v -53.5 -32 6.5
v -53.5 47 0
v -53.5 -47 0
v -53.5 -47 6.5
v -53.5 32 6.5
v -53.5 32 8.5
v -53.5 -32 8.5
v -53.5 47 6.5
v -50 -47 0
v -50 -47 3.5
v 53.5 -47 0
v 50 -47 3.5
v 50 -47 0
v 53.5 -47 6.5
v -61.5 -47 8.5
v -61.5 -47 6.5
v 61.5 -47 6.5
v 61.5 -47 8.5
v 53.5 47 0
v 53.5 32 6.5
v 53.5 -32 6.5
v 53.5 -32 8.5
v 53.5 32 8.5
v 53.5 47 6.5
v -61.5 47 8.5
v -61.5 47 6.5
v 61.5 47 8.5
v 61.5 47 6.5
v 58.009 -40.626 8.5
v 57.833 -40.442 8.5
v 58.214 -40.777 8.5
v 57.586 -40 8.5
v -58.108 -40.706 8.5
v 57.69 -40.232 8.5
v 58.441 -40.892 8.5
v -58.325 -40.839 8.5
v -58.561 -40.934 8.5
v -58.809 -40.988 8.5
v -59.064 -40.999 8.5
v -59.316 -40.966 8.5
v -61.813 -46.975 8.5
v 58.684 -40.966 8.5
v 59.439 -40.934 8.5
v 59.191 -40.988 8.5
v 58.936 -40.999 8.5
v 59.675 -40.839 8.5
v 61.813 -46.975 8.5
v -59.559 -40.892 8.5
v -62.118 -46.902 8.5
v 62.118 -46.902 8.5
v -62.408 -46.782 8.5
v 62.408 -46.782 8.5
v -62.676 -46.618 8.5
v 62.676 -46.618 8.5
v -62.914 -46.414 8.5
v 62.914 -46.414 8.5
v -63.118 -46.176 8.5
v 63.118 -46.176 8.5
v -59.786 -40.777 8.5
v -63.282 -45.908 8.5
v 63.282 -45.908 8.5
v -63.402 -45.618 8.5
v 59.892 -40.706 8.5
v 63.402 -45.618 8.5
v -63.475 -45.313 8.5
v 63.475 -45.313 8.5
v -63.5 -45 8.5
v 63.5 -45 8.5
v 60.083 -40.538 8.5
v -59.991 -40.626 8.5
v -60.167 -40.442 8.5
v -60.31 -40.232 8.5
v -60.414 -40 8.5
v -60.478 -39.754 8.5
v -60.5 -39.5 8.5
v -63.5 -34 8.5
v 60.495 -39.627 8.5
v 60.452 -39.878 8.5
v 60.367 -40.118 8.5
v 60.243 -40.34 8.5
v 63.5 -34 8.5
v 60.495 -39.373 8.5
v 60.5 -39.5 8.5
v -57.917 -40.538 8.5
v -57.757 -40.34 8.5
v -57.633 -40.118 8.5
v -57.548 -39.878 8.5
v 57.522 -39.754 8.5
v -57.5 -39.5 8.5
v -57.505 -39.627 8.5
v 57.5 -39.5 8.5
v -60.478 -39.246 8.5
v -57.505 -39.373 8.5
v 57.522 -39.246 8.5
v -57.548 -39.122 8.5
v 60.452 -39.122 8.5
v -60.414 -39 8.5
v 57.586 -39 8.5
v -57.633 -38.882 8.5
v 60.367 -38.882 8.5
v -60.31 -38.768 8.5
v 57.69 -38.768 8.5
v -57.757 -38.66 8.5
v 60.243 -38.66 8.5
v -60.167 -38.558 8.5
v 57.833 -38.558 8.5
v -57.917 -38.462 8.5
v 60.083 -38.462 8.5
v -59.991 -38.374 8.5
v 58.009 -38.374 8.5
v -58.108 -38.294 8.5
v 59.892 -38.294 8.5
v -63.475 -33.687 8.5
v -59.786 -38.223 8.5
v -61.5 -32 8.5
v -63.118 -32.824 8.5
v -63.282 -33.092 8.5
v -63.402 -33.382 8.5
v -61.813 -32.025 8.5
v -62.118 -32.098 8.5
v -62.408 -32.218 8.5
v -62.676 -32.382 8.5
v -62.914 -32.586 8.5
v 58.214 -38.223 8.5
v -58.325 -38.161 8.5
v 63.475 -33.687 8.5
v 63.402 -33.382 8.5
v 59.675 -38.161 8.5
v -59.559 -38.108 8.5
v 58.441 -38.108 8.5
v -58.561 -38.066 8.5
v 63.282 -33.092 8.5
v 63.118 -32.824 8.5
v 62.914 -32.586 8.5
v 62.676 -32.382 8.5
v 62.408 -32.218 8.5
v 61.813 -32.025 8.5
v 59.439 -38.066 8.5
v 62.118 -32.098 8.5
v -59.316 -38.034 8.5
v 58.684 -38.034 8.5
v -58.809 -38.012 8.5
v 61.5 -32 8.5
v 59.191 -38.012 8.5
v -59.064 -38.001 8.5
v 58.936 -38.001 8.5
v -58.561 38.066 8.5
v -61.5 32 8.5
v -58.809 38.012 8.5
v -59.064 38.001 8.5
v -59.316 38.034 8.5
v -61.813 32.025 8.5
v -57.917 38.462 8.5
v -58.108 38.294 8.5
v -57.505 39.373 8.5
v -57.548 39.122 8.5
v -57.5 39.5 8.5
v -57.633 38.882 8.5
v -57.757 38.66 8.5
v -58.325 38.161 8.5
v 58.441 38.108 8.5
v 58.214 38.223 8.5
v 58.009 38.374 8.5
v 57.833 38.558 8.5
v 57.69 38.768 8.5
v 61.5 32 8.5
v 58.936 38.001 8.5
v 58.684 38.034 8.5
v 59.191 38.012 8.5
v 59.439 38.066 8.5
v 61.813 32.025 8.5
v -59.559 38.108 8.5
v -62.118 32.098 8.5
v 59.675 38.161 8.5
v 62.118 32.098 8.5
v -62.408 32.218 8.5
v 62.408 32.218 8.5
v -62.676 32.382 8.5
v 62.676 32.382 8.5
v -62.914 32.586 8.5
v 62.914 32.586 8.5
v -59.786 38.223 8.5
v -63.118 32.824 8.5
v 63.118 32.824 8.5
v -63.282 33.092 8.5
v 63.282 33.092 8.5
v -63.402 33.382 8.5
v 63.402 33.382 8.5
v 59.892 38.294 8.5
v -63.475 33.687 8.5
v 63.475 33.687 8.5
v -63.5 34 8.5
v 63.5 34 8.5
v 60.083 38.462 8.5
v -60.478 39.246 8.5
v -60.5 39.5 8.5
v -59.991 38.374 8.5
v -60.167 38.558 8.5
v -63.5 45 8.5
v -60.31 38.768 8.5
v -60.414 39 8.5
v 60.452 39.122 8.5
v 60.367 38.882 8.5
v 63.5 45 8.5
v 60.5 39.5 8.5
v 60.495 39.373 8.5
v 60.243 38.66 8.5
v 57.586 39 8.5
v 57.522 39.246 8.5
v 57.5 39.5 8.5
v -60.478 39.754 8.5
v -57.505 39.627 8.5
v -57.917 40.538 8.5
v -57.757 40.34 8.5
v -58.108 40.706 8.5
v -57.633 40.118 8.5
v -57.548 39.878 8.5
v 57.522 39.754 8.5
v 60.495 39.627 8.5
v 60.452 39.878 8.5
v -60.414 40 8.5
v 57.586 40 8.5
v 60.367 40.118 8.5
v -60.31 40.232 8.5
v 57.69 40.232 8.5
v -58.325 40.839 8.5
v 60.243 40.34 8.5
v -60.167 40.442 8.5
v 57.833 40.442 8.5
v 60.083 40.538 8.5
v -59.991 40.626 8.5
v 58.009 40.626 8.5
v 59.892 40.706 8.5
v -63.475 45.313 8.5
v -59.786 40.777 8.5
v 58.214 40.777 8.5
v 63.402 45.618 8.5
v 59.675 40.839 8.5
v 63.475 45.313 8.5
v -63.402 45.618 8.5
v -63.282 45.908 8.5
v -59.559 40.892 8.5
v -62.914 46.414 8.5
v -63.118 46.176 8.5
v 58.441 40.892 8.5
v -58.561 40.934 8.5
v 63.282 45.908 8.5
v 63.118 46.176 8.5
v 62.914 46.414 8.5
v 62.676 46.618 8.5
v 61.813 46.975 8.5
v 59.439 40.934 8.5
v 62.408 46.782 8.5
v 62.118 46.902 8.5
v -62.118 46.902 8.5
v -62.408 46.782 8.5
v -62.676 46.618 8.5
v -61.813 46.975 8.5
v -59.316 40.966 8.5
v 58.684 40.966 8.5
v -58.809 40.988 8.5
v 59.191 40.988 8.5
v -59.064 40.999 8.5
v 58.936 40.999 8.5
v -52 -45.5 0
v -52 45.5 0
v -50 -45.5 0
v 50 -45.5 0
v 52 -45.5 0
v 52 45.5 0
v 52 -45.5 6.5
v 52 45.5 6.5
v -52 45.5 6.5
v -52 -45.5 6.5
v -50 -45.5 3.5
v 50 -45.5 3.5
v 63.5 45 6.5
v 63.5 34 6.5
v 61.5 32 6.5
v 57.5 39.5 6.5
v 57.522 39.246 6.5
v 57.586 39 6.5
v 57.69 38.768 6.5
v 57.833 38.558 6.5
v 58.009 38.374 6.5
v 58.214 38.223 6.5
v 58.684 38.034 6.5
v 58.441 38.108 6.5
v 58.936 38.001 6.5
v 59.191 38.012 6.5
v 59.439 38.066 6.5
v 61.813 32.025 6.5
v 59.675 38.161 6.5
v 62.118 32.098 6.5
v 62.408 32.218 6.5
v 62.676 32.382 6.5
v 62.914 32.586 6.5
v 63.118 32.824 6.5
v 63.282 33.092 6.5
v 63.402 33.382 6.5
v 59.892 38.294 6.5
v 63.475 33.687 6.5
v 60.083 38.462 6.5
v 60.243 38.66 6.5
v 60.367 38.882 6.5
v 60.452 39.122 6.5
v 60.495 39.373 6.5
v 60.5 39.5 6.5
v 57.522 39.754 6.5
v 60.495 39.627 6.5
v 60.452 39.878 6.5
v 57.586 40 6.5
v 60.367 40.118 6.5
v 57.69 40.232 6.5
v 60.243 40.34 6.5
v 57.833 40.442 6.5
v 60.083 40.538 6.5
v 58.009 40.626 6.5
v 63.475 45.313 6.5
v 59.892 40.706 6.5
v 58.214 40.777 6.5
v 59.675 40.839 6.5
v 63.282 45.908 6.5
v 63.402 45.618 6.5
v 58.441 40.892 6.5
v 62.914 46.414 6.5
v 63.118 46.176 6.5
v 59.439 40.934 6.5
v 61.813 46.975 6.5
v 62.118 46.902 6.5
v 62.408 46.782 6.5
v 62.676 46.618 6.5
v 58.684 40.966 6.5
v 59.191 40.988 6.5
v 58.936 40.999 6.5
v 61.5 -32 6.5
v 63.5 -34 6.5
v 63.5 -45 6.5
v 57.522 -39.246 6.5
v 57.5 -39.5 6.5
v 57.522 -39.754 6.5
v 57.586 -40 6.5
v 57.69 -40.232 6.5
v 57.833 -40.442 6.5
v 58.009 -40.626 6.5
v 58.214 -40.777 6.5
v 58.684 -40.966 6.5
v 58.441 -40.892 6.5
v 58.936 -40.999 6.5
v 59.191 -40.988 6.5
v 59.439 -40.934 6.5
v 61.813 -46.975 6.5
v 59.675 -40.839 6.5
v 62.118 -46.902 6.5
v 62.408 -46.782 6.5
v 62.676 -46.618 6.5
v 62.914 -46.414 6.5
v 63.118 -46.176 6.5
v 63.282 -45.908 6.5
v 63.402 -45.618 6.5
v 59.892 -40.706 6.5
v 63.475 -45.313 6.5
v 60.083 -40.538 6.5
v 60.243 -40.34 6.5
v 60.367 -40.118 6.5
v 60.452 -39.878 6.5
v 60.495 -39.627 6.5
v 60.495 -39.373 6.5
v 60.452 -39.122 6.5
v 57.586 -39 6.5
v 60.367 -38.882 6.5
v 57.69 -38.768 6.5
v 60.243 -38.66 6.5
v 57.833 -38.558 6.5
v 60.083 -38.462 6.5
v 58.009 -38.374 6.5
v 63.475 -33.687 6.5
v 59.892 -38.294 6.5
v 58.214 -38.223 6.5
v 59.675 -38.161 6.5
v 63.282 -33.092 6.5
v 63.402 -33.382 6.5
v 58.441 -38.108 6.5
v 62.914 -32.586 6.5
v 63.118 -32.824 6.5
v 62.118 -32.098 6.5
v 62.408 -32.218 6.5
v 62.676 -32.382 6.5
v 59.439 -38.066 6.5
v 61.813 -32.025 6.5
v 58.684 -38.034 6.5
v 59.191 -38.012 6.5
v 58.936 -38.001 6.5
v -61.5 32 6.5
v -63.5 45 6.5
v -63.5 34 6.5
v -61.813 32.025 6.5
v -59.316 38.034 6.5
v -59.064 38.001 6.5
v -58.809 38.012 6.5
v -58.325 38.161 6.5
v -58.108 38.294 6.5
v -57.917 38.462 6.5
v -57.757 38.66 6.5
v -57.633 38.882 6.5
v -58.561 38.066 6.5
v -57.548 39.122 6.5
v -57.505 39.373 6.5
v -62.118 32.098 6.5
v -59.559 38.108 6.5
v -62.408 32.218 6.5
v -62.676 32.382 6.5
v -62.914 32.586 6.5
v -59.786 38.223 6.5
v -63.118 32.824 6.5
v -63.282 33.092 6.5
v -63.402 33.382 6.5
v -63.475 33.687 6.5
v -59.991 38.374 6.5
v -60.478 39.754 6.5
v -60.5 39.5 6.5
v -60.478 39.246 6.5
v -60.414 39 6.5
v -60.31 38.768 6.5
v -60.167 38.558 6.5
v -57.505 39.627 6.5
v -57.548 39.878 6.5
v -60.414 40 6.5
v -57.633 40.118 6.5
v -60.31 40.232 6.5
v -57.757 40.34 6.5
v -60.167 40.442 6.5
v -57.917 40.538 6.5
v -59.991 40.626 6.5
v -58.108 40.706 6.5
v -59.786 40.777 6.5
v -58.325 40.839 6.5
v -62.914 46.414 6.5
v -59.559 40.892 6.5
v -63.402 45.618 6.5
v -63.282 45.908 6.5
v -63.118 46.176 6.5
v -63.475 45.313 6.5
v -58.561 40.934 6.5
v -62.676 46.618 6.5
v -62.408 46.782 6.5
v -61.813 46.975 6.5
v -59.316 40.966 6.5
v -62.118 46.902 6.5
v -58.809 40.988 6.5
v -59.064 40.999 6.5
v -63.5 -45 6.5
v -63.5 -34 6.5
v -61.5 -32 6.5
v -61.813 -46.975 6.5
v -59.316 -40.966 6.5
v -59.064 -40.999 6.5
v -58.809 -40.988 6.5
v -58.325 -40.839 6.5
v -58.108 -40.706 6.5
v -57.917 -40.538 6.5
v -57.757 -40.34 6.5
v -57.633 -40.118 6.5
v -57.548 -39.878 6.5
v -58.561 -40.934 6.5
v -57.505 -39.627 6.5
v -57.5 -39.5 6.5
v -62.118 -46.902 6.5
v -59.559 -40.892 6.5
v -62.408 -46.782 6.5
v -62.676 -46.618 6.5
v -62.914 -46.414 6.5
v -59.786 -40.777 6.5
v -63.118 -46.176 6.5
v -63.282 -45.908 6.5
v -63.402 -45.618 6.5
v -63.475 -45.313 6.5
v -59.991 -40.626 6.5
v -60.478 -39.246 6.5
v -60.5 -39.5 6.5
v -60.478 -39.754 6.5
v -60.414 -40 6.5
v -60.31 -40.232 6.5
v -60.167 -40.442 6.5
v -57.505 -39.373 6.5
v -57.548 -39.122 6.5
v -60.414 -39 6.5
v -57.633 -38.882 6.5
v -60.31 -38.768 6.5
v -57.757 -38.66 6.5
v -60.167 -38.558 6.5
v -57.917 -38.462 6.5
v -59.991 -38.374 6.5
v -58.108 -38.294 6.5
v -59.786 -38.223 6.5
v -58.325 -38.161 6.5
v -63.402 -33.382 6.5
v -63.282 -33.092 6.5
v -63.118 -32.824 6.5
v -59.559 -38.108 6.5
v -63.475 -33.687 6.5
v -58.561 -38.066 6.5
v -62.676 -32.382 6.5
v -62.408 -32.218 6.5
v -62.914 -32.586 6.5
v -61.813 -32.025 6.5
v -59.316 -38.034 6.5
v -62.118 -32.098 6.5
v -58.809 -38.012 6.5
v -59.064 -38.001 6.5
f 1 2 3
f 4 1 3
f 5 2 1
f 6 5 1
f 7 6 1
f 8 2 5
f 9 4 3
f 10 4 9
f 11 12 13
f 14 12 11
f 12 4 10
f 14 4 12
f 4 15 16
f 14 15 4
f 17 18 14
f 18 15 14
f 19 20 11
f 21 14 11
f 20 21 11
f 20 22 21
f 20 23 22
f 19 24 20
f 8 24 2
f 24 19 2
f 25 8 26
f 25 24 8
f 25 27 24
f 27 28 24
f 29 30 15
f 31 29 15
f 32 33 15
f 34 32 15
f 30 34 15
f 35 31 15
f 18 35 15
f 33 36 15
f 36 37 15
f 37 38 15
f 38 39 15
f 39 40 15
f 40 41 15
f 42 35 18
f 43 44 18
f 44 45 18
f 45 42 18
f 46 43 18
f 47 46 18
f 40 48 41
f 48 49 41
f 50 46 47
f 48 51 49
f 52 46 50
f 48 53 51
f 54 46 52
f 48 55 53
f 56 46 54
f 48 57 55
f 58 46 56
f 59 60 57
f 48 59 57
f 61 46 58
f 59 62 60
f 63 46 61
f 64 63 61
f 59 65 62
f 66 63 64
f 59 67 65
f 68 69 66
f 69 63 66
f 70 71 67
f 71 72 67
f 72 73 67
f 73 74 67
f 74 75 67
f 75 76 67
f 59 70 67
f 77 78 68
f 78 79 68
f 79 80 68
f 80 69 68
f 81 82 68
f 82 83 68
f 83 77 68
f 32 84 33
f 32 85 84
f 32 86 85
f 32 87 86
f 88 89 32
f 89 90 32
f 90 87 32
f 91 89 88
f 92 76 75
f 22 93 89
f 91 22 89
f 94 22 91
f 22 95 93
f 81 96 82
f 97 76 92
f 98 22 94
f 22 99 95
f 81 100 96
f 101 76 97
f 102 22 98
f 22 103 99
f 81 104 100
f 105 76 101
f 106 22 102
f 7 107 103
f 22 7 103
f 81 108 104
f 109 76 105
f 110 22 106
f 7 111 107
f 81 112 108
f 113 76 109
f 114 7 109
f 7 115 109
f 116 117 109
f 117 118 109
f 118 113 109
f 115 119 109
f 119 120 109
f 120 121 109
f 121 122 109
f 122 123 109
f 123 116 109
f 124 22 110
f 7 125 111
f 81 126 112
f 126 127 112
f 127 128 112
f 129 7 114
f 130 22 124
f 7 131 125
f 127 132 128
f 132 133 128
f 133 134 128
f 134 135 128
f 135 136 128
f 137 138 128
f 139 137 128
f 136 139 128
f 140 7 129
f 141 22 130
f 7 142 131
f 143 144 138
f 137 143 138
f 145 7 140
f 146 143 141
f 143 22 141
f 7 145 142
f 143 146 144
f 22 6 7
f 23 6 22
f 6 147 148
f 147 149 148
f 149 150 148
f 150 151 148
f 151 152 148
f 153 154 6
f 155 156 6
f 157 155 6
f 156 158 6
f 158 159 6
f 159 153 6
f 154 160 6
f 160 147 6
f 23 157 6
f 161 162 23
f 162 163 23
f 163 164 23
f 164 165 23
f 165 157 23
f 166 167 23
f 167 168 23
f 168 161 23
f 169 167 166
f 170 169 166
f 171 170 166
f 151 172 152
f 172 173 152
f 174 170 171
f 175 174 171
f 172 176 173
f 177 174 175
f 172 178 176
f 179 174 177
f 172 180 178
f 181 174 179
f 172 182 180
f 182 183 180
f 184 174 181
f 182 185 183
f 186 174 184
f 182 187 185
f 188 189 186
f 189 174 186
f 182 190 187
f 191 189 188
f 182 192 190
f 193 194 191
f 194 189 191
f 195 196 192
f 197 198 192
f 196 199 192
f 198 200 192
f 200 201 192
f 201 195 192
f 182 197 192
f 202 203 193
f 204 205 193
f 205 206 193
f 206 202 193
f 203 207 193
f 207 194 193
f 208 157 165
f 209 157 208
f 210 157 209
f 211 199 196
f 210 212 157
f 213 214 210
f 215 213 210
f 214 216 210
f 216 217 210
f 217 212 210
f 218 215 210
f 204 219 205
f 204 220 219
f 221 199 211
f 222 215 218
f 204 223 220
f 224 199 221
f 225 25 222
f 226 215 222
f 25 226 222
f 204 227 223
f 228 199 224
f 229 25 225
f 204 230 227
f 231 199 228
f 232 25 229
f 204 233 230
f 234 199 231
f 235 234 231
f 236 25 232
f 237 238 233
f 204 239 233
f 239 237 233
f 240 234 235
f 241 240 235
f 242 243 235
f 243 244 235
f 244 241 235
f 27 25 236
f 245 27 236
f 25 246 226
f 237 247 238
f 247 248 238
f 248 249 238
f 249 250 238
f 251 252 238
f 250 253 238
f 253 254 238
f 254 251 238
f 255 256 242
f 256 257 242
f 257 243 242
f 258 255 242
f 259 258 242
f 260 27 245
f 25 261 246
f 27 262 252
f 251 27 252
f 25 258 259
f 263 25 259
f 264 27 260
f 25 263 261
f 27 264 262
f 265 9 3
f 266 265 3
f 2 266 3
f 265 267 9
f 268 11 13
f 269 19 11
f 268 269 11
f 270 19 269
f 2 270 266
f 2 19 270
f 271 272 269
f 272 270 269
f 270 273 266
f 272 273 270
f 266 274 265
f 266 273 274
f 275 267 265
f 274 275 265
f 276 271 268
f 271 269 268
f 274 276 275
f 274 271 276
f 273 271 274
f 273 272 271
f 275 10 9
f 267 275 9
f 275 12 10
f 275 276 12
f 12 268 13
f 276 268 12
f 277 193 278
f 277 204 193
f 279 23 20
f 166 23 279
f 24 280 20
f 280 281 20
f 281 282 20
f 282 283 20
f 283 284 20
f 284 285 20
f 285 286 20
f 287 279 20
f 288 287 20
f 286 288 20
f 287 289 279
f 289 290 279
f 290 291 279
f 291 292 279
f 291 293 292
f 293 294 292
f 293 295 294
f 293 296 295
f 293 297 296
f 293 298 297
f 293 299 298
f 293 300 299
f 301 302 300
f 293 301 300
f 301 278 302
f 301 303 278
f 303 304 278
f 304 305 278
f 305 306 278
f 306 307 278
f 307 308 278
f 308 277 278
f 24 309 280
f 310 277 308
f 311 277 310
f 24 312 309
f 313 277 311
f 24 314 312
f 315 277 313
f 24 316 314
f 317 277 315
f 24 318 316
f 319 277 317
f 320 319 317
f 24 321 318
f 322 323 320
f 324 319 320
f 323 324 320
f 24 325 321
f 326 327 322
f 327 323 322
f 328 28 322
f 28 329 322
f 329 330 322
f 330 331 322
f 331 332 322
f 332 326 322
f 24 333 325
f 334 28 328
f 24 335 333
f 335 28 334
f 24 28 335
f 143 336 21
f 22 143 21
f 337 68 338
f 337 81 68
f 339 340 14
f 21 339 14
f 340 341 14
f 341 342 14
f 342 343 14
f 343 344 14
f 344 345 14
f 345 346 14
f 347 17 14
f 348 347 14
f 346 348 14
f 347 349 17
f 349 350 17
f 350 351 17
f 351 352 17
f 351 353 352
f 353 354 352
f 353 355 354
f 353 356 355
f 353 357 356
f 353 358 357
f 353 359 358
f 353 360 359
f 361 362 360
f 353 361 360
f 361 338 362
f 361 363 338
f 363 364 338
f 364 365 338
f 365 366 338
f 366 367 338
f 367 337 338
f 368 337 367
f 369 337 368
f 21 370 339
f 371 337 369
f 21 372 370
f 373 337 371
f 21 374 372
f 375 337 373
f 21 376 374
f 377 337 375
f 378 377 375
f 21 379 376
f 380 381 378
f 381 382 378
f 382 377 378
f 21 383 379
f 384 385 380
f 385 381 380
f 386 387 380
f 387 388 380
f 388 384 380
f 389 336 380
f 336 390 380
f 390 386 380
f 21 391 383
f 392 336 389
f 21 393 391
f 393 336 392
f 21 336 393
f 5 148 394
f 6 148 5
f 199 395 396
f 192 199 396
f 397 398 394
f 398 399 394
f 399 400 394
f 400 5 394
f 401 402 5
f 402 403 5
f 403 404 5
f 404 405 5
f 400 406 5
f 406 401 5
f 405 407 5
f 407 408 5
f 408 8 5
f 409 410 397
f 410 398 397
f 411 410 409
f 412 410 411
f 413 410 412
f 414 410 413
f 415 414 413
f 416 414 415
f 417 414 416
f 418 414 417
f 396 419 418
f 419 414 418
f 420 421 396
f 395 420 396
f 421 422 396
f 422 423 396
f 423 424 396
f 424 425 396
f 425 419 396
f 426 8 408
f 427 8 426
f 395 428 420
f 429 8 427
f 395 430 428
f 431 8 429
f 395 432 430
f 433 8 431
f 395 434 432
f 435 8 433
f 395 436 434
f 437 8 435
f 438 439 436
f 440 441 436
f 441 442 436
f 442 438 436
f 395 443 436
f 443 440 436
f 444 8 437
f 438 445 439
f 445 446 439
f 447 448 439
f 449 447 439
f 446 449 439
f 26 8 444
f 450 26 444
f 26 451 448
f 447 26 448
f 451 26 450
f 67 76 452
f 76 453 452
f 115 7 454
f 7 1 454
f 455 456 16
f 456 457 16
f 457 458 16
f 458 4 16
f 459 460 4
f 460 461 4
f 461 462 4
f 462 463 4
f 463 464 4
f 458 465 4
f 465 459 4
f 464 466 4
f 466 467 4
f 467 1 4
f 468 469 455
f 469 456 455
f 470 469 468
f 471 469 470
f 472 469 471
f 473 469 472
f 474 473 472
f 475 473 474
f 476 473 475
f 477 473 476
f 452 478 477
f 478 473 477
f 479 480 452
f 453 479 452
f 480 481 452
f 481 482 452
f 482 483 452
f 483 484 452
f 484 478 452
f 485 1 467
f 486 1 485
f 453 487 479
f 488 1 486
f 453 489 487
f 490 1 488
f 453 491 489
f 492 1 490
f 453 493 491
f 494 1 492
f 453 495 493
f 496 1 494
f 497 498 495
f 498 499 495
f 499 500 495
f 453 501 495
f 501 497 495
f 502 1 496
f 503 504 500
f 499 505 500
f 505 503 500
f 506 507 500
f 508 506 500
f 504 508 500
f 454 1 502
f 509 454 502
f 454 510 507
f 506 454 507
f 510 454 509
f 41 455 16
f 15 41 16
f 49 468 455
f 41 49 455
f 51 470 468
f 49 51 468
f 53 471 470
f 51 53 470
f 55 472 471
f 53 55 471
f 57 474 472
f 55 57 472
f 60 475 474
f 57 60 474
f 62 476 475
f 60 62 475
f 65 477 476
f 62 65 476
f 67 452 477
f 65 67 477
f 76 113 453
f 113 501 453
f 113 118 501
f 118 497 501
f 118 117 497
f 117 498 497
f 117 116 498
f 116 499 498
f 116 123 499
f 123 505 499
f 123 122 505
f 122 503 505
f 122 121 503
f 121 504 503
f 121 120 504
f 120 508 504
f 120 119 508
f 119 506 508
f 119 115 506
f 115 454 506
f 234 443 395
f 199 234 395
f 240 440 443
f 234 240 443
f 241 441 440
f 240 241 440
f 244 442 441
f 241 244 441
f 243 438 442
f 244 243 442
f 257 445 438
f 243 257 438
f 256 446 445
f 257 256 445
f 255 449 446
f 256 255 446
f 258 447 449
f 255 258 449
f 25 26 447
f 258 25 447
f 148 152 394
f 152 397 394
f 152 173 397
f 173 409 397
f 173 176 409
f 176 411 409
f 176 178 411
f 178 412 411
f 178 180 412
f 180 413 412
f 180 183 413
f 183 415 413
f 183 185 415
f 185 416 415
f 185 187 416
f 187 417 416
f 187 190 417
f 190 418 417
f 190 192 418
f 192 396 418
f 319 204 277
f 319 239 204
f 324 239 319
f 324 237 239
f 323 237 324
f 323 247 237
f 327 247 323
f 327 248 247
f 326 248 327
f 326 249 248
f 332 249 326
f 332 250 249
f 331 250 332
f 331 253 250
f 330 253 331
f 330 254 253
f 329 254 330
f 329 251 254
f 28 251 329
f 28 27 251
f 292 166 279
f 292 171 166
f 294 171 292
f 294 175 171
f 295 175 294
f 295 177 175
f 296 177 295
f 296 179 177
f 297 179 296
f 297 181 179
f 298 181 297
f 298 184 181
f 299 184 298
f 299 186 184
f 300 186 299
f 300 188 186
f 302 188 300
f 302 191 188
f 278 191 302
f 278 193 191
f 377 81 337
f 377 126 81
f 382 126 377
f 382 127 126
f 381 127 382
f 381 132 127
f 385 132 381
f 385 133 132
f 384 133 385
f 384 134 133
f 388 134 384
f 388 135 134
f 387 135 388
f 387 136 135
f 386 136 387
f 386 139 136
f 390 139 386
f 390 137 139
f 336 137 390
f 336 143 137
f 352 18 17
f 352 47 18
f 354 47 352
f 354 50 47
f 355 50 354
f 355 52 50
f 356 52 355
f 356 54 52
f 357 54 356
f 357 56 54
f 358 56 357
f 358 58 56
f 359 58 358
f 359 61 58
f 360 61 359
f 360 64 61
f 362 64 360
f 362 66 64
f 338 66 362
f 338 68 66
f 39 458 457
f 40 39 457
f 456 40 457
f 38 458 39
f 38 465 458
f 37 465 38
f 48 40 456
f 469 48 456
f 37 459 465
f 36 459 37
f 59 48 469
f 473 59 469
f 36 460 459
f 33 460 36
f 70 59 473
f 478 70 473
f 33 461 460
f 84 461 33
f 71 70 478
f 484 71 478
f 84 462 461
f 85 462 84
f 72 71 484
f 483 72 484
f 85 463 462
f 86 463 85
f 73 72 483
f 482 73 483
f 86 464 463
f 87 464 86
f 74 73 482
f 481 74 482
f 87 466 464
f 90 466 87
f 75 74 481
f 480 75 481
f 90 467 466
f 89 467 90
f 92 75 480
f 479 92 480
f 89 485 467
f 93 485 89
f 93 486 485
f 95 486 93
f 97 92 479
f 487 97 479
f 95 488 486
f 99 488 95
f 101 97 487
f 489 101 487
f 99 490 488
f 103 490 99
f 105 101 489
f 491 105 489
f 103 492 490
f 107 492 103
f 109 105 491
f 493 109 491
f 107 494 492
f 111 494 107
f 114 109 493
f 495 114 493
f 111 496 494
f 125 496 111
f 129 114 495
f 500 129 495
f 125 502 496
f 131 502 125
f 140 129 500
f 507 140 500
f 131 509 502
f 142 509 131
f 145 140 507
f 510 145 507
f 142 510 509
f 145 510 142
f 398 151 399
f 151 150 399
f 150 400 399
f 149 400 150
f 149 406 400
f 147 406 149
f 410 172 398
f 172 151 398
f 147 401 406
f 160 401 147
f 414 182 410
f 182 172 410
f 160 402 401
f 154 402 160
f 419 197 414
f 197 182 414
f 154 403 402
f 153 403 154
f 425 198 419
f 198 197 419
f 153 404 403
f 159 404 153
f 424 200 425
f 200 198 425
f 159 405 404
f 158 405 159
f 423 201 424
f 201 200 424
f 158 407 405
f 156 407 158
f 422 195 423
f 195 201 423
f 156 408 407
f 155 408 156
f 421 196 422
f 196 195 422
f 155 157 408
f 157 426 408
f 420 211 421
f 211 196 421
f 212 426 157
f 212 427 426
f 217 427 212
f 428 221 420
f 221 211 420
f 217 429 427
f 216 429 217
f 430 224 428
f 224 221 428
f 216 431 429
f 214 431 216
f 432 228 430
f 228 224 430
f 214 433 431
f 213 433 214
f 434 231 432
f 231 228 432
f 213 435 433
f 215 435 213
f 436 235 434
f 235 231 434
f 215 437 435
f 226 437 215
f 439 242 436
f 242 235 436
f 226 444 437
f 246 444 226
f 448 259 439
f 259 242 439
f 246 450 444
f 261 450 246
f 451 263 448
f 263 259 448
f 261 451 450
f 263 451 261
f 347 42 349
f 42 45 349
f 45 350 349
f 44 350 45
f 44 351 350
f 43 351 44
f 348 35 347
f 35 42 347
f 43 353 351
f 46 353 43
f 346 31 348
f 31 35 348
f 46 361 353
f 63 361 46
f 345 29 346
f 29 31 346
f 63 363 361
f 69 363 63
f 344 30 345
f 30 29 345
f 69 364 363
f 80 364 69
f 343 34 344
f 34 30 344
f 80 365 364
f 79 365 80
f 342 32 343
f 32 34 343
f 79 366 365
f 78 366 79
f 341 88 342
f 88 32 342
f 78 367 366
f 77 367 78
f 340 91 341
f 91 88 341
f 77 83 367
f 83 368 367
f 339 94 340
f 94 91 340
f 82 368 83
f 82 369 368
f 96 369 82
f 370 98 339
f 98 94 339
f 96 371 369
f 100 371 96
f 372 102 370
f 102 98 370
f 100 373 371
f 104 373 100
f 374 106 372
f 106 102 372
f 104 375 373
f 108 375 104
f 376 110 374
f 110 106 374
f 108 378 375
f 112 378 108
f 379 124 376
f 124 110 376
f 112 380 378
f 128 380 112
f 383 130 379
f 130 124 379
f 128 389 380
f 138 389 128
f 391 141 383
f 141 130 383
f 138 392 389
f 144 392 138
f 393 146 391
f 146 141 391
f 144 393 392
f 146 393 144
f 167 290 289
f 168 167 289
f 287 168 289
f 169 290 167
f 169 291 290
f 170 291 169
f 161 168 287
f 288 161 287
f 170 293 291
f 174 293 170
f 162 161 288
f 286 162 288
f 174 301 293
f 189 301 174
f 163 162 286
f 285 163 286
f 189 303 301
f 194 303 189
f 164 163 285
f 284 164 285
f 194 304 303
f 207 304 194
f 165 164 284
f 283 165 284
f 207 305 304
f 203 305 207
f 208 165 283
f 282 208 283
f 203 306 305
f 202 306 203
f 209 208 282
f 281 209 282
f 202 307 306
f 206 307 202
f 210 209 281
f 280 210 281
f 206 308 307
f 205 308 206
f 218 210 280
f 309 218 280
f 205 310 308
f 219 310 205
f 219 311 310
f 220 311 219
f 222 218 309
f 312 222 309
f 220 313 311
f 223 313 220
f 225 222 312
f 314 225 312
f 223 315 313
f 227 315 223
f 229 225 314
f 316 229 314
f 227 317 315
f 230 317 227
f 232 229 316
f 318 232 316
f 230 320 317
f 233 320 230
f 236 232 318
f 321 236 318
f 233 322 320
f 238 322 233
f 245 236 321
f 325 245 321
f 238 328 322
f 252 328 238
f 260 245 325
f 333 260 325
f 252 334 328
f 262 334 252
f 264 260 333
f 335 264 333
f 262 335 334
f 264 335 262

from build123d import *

# Parameters (mm, degrees)
SKETCH_1_W          = 107
SKETCH_1_H          = 94
EXTRUDE_1_DEPTH     = 8.5
SKETCH_2_W          = 104
SKETCH_2_H          = 91
CUT_EXTRUDE_1_DEPTH = 6.5
SKETCH_3_W          = 100
SKETCH_3_H          = 5.5
CUT_EXTRUDE_2_DEPTH = 6
SKETCH_4_W          = 10
SKETCH_4_H          = 15
EXTRUDE_2_DEPTH     = 2
FILLET_1_R          = 2
SKETCH_5_R          = 1.5
CUT_EXTRUDE_3_DEPTH = 3


with BuildPart() as part:
    # 草图1 → 凸台-拉伸1 (new body)
    with BuildSketch(Plane.XY):
        Rectangle(SKETCH_1_W, SKETCH_1_H)
    extrude(amount=EXTRUDE_1_DEPTH)

    # 草图2 → 切除-拉伸1 (cut)
    with BuildSketch(Plane(origin=(0, 0, 0), x_dir=(-1, 0, 0), z_dir=(0, 0, -1))):
        Rectangle(SKETCH_2_W, SKETCH_2_H)
    extrude(amount=-CUT_EXTRUDE_1_DEPTH, mode=Mode.SUBTRACT)

    # 草图3 → 切除-拉伸2 (cut)
    with BuildSketch(Plane.XZ.offset(47)):
        with Locations((0, 0.75)):
            Rectangle(SKETCH_3_W, SKETCH_3_H)
    extrude(amount=-CUT_EXTRUDE_2_DEPTH, mode=Mode.SUBTRACT)

    # 草图4 → 凸台-拉伸2 (add)
    with BuildSketch(Plane.XY.offset(8.5)):
        with Locations((58.5, 39.5)):
            Rectangle(SKETCH_4_W, SKETCH_4_H)
        with Locations((58.5, -39.5)):
            Rectangle(SKETCH_4_W, SKETCH_4_H)
        with Locations((-58.5, 39.5)):
            Rectangle(SKETCH_4_W, SKETCH_4_H)
        with Locations((-58.5, -39.5)):
            Rectangle(SKETCH_4_W, SKETCH_4_H)
    extrude(amount=-EXTRUDE_2_DEPTH)

    # 圆角1
    fillet_1_edges = [part.edges().sort_by_distance(p)[0] for p in [
        (63.5, 47, 7.5),
        (63.5, 32, 7.5),
        (63.5, -47, 7.5),
        (63.5, -32, 7.5),
        (-63.5, 47, 7.5),
        (-63.5, 32, 7.5),
        (-63.5, -47, 7.5),
        (-63.5, -32, 7.5),
    ]]
    fillet(fillet_1_edges, radius=FILLET_1_R)

    # 草图5 → 切除-拉伸3 (cut)
    with BuildSketch(Plane(origin=(0, 0, 6.5), x_dir=(-1, 0, 0), z_dir=(0, 0, -1))):
        with Locations((59, 39.5)):
            Circle(SKETCH_5_R)
        with Locations(Location((59, -39.5, 0), (0, 0, 180))):
            Circle(SKETCH_5_R)
        with Locations(Location((-59, 39.5, 0), (0, 0, 180))):
            Circle(SKETCH_5_R)
        with Locations((-59, -39.5)):
            Circle(SKETCH_5_R)
    extrude(amount=-CUT_EXTRUDE_3_DEPTH, mode=Mode.SUBTRACT)


solid = part.part
